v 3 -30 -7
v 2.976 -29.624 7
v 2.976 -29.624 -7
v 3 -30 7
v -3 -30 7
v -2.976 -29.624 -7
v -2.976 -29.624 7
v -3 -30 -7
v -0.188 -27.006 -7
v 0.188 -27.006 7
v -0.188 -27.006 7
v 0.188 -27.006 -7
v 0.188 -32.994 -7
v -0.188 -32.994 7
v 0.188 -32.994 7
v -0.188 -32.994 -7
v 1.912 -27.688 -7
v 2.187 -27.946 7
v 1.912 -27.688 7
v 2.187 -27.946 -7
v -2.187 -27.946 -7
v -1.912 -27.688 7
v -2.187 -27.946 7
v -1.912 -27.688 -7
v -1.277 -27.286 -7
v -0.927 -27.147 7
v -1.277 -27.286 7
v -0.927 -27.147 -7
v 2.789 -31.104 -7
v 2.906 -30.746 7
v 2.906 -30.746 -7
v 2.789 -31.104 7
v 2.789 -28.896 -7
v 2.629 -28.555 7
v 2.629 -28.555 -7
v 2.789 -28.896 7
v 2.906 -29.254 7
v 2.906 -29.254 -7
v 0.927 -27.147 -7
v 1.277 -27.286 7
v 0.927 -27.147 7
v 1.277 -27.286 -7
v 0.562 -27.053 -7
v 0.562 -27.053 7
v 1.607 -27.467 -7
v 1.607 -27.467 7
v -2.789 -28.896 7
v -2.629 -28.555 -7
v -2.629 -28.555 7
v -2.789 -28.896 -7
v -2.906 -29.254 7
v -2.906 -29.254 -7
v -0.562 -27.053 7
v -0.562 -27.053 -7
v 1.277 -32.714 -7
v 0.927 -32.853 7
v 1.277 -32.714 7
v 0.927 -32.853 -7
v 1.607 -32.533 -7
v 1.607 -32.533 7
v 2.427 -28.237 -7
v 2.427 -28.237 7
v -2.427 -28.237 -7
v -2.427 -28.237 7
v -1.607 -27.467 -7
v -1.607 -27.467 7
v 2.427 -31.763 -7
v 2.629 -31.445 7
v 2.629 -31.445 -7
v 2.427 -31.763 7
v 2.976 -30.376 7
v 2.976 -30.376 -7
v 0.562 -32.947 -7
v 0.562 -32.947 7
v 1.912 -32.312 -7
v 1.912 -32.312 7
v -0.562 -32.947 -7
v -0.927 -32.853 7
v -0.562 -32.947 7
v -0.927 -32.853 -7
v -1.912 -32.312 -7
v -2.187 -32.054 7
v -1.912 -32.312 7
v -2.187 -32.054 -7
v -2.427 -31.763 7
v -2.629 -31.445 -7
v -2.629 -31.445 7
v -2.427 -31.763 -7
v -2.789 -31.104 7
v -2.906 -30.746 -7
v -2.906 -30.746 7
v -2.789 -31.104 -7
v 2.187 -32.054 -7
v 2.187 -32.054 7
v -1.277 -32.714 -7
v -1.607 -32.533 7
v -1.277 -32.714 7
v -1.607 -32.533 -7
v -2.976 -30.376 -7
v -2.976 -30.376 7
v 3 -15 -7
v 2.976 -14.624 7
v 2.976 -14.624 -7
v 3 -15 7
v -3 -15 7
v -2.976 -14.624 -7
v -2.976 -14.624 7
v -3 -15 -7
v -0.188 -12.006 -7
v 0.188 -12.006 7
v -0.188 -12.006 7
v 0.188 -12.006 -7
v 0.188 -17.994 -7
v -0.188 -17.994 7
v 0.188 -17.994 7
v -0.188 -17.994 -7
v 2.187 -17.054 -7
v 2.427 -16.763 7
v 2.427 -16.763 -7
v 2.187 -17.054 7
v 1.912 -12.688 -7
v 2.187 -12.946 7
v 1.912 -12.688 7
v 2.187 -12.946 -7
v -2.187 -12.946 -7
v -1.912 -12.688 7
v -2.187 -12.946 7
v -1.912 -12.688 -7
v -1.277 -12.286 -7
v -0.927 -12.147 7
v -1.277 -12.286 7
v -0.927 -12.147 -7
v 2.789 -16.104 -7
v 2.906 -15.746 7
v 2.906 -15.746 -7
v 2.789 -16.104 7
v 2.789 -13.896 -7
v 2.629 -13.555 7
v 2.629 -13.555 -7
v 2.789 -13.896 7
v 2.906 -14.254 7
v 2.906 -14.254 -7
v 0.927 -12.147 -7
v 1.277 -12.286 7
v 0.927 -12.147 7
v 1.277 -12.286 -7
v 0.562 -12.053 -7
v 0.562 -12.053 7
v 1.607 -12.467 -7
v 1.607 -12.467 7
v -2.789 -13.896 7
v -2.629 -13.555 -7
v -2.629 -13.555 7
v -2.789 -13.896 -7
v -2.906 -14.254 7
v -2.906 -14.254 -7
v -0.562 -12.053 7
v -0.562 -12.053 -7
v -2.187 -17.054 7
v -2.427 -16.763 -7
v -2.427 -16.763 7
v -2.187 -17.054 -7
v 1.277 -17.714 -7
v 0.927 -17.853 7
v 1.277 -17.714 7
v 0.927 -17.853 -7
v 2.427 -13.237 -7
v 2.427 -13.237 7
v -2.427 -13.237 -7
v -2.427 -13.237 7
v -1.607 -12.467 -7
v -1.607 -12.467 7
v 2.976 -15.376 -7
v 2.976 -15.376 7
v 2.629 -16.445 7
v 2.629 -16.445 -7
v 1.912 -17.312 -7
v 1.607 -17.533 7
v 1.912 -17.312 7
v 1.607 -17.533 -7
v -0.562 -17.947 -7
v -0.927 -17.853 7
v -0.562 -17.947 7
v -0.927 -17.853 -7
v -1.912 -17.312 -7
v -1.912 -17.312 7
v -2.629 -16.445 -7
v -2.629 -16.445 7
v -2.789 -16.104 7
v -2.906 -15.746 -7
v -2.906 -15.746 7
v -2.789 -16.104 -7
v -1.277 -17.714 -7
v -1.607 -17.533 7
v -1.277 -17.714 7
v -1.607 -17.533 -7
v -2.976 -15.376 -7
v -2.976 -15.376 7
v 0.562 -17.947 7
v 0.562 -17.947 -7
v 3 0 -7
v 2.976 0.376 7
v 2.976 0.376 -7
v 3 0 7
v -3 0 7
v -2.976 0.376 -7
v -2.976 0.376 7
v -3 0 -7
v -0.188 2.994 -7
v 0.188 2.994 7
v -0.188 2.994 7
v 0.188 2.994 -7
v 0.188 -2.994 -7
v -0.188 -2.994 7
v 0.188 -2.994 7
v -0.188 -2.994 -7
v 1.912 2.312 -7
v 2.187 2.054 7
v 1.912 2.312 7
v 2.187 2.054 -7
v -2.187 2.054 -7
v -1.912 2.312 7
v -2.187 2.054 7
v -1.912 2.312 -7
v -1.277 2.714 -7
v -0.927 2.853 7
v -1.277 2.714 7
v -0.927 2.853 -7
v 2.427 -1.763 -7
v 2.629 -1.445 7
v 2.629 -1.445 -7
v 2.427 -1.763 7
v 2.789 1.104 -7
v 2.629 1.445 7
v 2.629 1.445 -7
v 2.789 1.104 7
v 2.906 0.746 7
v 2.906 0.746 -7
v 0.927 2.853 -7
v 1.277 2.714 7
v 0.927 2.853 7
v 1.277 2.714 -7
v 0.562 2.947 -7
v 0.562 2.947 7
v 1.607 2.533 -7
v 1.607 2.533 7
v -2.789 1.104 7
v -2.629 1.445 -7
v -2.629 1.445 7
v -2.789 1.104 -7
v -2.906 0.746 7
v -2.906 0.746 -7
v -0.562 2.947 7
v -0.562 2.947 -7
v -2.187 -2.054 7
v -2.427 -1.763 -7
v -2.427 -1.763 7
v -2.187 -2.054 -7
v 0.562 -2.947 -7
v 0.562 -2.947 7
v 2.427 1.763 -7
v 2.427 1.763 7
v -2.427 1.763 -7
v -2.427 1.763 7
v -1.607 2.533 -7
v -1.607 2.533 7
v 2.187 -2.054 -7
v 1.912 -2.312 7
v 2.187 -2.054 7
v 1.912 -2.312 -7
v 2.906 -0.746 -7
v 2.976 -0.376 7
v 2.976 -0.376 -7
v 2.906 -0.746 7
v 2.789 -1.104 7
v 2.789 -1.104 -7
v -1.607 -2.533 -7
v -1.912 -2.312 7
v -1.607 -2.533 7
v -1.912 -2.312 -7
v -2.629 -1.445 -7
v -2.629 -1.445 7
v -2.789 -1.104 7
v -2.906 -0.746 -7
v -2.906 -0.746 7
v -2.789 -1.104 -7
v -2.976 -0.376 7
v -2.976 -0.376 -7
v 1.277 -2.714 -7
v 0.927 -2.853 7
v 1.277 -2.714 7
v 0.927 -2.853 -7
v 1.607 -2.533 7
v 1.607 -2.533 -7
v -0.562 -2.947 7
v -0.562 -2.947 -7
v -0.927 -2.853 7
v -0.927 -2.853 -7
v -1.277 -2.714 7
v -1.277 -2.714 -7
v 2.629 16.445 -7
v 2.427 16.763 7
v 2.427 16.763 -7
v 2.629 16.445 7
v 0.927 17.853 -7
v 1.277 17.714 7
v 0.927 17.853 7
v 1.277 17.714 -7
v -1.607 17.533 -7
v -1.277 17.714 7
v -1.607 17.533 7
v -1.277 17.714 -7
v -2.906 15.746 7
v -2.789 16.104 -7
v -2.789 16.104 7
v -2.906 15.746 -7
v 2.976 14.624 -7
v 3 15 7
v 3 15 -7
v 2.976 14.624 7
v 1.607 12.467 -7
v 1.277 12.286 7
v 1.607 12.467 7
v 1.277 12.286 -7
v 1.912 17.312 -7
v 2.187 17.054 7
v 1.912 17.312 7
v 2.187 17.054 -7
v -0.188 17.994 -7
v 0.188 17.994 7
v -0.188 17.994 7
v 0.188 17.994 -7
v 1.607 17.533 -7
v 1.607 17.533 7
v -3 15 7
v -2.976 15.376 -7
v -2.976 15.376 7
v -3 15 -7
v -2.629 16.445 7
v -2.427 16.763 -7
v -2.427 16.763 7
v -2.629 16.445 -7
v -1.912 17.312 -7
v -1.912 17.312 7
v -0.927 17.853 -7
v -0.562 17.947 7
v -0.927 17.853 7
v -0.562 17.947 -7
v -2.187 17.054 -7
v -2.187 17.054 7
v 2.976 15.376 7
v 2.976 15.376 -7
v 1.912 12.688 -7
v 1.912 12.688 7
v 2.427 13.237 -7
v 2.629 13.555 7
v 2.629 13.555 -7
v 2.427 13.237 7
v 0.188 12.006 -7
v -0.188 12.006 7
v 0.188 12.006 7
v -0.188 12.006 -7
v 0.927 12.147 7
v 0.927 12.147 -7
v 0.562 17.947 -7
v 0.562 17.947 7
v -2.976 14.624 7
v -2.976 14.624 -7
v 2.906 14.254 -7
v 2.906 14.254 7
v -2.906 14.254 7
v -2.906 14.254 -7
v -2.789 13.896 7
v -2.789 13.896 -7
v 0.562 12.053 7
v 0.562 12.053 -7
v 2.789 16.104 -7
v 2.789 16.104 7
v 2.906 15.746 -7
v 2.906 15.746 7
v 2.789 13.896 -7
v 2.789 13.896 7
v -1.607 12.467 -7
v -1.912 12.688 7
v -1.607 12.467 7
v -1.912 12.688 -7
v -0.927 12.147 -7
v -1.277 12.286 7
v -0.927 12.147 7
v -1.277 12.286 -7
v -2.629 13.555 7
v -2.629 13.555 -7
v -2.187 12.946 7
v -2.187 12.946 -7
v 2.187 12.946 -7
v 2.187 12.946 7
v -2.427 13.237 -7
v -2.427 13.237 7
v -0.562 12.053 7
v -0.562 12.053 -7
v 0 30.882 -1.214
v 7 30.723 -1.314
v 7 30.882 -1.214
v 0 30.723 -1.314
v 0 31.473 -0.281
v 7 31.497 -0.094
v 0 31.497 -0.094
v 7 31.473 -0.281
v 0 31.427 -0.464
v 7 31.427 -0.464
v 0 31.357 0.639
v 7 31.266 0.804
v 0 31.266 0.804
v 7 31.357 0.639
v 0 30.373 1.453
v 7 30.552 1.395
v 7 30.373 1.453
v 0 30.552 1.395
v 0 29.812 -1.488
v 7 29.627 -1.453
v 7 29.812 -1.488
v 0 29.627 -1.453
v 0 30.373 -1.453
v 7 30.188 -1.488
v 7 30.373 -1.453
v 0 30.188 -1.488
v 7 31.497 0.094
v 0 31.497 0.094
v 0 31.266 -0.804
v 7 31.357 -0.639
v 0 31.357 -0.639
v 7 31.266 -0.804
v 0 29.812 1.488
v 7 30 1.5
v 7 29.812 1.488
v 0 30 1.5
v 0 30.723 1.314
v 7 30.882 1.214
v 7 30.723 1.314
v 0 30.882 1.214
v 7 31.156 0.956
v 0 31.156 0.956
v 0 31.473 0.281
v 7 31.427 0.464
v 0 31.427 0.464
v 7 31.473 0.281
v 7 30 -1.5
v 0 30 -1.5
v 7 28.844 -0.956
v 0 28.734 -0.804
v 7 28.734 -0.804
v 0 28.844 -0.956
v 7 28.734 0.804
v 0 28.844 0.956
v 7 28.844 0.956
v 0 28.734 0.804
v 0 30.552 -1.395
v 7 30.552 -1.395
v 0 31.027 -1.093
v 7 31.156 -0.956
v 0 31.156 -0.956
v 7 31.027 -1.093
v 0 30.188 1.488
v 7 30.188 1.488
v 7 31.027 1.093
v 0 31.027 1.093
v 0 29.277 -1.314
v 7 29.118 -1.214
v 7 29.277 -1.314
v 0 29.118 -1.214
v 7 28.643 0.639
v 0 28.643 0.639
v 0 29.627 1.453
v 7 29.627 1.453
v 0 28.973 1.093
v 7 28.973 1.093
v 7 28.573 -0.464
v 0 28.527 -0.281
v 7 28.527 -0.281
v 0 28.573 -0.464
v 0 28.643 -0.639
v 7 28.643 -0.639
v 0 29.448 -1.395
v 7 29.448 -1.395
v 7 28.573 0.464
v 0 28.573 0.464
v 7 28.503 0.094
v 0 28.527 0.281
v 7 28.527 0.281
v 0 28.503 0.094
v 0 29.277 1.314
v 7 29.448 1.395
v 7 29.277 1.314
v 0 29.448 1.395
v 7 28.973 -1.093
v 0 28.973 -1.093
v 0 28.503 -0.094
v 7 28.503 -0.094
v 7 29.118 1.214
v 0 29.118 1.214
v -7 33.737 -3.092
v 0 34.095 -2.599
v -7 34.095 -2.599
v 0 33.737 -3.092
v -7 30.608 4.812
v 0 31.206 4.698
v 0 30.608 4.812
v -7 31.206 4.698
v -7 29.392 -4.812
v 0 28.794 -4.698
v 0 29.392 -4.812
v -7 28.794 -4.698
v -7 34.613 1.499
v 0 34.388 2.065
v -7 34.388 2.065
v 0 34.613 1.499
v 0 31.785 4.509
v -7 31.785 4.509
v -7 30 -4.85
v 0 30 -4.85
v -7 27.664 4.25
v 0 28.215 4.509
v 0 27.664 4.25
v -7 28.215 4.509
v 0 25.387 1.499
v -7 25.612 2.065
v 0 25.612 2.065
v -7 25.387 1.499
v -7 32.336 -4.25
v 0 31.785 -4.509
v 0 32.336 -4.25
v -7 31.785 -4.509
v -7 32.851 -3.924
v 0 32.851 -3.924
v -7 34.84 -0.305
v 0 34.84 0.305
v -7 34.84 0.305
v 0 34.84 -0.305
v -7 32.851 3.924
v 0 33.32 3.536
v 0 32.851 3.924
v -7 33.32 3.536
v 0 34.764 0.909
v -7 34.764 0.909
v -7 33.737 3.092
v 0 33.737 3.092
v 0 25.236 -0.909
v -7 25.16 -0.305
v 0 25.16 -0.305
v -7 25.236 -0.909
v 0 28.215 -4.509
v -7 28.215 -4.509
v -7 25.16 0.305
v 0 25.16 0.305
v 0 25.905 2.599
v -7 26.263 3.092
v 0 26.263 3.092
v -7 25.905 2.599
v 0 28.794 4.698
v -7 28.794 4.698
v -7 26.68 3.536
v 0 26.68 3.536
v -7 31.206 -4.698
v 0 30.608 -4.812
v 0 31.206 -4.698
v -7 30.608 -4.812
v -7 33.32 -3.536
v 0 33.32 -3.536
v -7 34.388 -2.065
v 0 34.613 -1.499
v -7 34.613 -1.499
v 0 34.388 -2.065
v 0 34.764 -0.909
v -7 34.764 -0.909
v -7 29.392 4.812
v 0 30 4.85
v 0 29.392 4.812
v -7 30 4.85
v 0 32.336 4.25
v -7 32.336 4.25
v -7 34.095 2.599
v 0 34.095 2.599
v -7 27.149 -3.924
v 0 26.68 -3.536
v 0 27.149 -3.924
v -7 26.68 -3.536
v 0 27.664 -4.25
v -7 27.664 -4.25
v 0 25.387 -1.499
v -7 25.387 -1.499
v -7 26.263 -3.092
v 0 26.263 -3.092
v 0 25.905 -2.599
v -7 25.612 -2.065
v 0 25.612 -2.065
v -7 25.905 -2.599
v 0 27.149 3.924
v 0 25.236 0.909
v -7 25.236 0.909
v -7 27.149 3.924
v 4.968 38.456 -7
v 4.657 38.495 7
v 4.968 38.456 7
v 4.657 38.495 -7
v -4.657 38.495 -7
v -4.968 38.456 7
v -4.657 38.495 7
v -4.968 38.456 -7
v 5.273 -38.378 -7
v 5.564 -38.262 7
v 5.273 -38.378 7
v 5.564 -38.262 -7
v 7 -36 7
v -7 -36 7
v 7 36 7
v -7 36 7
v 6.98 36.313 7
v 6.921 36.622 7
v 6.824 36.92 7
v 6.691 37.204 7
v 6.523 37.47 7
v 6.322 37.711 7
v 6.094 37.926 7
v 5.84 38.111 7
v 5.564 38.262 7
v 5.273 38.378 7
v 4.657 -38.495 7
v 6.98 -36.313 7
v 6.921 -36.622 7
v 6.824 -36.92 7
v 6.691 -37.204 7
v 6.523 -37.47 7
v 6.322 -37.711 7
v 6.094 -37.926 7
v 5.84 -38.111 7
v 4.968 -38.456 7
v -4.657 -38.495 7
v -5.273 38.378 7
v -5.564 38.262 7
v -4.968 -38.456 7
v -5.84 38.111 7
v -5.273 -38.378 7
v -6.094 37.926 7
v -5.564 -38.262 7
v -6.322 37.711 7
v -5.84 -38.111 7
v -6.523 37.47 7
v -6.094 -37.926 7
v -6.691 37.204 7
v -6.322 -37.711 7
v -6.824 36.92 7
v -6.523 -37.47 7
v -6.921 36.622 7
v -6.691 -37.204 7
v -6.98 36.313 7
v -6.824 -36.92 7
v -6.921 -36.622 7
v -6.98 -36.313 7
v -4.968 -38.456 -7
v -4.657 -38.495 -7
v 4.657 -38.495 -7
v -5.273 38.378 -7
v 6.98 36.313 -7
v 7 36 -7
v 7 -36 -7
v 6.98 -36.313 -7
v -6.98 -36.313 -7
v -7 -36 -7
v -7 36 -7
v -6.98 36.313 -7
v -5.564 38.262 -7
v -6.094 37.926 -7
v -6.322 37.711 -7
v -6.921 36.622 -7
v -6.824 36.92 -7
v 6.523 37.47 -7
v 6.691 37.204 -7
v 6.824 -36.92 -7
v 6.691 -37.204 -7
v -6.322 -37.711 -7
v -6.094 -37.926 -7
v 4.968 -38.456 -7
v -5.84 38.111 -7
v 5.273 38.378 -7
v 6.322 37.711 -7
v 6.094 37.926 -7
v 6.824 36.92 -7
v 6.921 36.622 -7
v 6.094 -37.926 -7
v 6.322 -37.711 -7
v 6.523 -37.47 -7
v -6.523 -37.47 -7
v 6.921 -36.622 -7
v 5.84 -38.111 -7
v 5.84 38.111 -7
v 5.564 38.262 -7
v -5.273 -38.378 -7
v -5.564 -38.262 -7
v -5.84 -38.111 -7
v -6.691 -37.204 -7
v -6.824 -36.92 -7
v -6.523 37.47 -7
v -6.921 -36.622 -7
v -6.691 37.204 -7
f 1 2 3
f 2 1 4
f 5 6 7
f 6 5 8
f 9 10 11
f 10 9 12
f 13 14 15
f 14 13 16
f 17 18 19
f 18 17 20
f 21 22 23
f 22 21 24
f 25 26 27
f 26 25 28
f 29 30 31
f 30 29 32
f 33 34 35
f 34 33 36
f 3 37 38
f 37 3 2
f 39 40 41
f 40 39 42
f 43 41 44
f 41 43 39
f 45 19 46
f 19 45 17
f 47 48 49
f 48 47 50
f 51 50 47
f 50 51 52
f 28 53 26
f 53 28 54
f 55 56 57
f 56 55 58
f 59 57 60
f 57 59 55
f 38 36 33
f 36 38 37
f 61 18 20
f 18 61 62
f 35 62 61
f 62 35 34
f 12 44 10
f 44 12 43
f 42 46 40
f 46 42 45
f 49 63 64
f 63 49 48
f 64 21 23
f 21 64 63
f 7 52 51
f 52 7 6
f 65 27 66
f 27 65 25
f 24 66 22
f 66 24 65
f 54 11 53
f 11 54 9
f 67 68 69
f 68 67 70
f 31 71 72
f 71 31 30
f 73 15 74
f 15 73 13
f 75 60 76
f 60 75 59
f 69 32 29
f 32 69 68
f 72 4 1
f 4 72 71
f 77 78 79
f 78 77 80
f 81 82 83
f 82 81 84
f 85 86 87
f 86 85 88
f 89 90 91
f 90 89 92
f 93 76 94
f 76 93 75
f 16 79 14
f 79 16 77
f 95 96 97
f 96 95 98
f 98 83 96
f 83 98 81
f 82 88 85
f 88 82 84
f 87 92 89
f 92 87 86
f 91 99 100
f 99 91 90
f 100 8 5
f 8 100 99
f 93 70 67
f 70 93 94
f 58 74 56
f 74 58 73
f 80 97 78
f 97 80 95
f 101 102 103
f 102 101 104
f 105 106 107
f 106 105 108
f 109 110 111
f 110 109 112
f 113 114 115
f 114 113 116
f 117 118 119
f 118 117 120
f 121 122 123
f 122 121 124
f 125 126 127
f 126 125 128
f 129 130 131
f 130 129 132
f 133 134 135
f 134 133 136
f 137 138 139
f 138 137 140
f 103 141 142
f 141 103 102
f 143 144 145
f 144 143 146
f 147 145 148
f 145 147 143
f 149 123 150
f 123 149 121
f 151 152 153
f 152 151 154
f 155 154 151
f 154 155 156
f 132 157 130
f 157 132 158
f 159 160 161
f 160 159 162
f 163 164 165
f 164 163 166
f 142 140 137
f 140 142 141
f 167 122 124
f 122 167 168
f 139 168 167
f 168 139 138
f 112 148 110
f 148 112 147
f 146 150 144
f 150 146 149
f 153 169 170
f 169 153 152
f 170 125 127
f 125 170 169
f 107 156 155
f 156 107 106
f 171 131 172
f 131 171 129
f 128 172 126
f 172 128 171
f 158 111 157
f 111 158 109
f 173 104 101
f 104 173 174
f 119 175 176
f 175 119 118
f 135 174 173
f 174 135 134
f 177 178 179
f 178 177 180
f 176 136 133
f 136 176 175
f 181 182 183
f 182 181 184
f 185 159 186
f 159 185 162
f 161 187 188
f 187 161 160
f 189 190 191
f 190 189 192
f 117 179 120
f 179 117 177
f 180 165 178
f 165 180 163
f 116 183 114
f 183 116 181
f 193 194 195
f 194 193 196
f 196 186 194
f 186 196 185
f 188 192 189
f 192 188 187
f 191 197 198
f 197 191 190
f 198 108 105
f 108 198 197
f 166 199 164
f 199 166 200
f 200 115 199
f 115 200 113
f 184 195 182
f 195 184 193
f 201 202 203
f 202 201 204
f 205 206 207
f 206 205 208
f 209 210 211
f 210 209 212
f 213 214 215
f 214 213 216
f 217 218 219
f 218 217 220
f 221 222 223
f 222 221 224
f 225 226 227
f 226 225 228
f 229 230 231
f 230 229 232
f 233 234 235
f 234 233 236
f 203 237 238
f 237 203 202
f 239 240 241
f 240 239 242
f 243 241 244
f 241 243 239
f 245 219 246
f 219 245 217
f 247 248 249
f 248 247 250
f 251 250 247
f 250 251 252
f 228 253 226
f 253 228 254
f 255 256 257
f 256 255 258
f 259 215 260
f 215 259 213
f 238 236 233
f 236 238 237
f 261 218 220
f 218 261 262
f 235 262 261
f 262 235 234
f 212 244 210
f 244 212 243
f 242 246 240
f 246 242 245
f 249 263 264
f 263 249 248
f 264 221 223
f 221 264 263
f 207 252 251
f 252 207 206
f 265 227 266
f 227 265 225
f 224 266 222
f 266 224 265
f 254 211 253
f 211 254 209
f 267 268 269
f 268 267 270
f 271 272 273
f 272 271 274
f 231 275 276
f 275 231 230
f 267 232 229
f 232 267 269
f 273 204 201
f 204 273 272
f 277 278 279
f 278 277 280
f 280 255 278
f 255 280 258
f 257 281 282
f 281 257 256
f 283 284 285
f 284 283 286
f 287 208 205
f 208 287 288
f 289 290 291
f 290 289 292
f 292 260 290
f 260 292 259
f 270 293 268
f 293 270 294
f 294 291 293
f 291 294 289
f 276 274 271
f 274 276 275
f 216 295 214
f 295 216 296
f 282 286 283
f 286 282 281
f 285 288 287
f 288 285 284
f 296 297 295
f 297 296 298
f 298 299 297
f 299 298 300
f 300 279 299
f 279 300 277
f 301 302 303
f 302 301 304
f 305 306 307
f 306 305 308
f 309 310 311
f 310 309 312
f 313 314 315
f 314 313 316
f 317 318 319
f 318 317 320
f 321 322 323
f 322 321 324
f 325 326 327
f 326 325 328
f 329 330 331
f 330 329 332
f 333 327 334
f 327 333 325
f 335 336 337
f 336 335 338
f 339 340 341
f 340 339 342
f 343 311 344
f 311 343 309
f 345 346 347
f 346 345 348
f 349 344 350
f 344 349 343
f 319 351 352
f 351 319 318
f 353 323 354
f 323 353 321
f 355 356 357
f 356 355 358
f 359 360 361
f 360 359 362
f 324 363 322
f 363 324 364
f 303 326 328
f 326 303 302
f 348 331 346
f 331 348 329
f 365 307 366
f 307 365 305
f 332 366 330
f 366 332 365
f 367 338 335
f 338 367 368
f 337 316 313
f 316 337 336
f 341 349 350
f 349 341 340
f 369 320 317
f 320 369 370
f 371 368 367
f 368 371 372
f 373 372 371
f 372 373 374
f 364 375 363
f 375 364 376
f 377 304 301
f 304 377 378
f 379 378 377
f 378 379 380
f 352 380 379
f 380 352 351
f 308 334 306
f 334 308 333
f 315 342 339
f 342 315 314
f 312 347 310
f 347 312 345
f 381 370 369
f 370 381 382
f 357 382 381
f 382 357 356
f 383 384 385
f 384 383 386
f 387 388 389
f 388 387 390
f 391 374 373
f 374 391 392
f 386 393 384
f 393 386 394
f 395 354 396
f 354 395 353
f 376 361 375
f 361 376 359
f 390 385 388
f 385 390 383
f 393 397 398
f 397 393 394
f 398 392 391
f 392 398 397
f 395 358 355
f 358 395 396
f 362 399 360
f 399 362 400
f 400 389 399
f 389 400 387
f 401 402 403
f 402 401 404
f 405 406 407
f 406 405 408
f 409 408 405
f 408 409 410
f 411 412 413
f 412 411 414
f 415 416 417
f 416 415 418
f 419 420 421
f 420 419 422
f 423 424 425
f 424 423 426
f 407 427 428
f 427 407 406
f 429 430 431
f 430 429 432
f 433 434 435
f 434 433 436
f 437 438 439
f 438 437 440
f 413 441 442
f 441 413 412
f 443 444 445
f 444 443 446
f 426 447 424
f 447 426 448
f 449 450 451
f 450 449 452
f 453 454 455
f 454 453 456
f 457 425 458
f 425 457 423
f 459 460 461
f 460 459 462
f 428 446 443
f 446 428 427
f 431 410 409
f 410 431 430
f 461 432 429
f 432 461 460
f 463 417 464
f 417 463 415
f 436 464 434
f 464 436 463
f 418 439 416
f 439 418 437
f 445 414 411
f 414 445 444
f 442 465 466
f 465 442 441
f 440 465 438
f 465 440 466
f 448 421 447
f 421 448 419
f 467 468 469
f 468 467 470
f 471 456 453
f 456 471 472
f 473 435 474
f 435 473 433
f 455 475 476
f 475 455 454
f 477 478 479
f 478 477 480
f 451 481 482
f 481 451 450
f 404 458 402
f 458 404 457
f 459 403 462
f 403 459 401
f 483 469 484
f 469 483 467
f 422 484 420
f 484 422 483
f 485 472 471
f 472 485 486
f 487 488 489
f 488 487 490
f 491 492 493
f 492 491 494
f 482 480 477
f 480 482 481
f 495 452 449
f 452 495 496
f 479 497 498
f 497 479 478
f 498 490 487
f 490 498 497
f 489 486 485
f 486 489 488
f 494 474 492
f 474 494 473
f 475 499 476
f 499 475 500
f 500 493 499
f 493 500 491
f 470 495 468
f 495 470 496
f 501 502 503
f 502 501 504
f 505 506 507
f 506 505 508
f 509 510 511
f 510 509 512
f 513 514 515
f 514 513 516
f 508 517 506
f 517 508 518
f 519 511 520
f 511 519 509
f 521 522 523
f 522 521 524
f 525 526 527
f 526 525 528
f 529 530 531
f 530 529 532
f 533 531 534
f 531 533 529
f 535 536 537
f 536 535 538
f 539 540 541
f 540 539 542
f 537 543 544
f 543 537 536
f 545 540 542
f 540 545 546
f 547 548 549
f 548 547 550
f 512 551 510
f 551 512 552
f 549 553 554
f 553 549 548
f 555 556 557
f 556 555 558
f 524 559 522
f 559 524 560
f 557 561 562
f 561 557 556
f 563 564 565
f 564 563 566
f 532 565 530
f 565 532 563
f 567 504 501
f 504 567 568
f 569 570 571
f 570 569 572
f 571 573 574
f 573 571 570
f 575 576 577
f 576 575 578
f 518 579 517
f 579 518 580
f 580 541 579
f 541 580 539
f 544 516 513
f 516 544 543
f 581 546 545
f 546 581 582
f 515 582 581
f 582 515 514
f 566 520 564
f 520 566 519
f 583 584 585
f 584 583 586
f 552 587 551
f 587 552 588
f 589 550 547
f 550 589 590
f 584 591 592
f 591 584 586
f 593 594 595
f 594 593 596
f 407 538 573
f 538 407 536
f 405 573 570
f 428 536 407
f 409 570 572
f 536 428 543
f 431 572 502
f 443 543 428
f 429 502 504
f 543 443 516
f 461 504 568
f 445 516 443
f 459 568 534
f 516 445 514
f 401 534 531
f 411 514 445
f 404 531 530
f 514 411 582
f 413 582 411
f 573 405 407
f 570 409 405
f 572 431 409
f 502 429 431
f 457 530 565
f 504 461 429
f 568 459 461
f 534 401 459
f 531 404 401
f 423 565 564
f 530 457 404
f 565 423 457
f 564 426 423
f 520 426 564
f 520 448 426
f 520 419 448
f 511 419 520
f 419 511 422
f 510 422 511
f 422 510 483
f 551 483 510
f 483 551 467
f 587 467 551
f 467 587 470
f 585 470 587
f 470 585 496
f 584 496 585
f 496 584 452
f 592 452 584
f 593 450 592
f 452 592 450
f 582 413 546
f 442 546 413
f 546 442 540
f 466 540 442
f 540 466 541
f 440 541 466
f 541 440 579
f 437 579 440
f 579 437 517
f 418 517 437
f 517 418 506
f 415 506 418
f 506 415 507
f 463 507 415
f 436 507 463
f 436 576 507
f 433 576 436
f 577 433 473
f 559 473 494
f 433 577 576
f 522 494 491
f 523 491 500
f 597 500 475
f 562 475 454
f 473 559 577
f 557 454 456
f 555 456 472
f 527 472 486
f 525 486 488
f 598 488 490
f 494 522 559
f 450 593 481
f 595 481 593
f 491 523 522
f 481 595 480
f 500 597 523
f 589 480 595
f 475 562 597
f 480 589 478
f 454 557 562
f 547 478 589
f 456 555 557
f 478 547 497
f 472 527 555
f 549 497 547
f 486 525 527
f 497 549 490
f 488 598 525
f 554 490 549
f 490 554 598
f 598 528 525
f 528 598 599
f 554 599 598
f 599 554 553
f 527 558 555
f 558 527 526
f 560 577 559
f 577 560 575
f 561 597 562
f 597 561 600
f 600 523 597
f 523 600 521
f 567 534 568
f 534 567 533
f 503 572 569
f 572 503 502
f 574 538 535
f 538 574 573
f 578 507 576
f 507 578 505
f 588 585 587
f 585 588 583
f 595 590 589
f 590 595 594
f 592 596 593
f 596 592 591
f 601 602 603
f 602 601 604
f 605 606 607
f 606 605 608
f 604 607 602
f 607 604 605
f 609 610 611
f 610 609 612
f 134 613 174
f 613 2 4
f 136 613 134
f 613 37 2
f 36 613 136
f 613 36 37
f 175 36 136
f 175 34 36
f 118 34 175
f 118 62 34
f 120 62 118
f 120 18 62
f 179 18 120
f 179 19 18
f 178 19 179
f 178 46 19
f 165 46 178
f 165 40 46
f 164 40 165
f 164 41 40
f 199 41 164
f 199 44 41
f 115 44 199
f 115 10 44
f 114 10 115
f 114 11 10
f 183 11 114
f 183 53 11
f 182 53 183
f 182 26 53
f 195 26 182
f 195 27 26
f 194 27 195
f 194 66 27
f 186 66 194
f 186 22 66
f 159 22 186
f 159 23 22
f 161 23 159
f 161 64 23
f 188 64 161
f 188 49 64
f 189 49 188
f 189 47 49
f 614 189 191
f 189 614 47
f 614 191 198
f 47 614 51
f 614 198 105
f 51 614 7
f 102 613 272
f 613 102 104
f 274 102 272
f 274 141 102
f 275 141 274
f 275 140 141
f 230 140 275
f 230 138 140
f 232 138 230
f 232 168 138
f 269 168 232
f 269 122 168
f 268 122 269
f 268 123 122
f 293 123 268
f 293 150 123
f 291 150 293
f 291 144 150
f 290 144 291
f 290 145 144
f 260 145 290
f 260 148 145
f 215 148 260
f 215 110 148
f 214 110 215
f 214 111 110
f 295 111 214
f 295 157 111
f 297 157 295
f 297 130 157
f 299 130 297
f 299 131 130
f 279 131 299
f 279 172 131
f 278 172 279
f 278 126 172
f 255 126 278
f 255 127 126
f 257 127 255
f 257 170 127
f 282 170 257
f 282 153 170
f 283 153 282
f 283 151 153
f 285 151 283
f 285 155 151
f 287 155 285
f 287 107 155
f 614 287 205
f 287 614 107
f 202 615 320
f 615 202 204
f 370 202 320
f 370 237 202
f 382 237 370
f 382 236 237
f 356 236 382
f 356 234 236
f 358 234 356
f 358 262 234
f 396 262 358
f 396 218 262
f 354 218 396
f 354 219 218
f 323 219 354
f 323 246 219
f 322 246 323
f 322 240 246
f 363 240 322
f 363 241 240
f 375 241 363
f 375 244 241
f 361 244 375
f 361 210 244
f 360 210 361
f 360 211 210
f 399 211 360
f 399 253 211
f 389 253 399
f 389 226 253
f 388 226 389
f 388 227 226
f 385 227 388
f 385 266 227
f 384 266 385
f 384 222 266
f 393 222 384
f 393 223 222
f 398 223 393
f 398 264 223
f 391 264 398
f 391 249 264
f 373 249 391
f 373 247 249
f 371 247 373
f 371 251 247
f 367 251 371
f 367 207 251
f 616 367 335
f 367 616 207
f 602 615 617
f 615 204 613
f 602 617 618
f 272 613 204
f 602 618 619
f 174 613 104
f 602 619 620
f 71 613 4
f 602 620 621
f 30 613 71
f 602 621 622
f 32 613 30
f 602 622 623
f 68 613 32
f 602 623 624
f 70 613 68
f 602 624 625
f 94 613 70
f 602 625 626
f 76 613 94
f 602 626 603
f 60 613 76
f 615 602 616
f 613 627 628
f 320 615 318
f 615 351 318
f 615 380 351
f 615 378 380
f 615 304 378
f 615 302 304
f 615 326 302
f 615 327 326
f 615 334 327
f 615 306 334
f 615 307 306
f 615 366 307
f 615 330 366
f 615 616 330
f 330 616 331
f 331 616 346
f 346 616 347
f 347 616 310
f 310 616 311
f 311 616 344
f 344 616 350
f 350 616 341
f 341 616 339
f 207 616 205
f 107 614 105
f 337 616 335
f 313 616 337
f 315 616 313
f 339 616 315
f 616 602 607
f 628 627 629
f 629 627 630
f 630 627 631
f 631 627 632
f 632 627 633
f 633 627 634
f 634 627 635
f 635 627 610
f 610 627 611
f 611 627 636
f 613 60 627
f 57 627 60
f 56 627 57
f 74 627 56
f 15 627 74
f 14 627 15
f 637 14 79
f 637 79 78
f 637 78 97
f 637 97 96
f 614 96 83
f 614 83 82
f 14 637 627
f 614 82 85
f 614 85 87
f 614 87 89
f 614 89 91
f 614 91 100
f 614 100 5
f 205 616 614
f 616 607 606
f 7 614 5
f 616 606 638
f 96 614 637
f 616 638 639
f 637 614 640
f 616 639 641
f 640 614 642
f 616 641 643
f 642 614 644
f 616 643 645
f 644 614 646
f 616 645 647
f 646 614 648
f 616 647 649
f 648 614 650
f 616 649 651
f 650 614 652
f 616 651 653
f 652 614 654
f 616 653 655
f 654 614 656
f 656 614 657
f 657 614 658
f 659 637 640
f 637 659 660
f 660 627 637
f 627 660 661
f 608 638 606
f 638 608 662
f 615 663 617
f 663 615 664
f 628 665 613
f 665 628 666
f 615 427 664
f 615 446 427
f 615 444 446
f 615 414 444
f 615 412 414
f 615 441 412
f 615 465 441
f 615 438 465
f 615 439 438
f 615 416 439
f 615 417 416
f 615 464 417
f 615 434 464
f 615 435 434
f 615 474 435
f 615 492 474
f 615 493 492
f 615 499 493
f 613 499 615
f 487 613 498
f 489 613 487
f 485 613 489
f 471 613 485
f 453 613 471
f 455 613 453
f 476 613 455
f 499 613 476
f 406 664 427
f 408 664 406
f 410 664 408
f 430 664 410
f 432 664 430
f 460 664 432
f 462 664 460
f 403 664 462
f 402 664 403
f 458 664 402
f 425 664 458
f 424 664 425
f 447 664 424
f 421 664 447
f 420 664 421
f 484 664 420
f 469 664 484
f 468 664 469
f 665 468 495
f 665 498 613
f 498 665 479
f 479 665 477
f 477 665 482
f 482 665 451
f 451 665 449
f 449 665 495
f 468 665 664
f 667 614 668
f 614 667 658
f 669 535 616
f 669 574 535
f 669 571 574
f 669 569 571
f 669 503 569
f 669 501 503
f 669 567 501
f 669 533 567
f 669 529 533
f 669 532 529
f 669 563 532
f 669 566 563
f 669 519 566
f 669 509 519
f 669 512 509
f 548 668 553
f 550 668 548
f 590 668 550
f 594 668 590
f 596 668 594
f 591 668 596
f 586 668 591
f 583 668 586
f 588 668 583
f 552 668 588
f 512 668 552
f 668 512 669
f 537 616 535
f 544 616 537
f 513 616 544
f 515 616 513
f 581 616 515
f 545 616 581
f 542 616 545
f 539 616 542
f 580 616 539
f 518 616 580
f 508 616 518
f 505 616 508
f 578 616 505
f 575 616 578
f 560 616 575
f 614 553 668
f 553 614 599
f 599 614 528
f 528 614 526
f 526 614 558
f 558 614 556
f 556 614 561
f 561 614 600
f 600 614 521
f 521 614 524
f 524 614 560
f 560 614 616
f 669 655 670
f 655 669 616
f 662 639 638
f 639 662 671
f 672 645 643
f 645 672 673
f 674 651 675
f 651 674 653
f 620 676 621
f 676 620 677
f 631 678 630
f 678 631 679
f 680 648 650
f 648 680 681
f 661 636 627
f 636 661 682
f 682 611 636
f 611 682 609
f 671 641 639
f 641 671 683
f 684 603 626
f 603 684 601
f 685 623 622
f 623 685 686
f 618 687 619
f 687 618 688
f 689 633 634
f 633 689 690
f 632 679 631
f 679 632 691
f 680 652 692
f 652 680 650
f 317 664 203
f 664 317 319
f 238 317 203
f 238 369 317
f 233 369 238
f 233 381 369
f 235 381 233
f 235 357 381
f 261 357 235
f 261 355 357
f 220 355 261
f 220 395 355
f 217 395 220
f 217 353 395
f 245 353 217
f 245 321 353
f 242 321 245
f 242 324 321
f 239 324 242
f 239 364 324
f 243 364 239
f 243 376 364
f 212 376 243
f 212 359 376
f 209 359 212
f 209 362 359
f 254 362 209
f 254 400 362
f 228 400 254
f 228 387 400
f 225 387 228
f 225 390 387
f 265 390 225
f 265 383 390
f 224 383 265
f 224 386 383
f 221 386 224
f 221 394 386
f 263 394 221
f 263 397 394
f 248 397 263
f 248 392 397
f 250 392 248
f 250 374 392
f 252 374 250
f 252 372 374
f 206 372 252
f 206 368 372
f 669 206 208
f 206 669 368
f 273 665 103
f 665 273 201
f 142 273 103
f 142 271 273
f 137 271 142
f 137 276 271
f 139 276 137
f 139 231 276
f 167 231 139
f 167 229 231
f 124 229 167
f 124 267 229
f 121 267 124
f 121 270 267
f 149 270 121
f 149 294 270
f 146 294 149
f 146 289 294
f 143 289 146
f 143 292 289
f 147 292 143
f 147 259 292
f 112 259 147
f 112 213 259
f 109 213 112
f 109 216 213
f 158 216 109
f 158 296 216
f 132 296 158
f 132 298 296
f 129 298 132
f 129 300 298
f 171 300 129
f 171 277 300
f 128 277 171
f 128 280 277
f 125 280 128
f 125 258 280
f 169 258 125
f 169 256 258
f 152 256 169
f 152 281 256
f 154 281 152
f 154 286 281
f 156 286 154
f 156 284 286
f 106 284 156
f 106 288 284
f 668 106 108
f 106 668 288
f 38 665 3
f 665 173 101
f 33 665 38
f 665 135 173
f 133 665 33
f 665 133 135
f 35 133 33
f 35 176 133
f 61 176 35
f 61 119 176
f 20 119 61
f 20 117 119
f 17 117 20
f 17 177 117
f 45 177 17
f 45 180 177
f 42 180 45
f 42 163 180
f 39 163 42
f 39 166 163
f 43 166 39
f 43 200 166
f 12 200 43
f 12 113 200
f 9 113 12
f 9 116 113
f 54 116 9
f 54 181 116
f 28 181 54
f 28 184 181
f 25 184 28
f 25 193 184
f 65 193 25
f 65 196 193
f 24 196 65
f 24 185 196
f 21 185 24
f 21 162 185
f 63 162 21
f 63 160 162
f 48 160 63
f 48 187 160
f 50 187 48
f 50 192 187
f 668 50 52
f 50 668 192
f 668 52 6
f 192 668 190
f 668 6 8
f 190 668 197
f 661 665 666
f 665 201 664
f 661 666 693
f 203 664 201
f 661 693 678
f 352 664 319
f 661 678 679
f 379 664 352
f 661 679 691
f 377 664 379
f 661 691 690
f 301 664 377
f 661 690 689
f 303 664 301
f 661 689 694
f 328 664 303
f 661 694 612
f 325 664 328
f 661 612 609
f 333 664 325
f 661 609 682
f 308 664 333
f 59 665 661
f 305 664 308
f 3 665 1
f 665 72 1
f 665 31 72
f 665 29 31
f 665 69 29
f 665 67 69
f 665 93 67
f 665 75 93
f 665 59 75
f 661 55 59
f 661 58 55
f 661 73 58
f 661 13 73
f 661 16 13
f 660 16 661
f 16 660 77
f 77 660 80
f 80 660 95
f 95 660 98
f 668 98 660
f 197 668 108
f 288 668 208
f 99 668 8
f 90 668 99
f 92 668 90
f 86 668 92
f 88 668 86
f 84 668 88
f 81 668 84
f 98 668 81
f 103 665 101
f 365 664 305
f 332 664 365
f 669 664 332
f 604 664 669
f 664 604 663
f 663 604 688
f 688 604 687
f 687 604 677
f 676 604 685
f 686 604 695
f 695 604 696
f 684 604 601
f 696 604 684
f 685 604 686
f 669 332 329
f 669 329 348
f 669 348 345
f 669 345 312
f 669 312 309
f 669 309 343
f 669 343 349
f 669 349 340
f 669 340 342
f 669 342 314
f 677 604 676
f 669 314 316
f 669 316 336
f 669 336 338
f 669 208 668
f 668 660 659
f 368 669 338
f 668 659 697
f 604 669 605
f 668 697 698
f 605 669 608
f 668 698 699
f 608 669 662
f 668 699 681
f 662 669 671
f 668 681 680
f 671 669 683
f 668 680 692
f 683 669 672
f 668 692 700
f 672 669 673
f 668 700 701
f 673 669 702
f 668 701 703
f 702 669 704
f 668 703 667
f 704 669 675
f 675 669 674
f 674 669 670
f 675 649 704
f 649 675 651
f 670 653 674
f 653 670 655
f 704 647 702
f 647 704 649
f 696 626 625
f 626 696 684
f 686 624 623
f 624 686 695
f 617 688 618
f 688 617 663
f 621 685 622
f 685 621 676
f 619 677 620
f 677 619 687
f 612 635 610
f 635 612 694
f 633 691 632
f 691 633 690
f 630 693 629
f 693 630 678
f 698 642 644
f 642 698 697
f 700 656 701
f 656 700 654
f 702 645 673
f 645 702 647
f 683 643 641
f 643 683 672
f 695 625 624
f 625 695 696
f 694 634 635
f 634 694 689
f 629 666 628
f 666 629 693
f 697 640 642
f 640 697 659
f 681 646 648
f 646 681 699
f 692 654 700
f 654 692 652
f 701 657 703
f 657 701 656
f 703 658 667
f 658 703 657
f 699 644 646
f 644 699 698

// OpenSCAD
$fn = 50;


difference() {
	union() {
		translate(v = [0, 0, -7.0000000000]) {
			hull() {
				translate(v = [-4.5000000000, 36.0000000000, 0]) {
					cylinder(h = 14, r = 2.5000000000);
				}
				translate(v = [4.5000000000, 36.0000000000, 0]) {
					cylinder(h = 14, r = 2.5000000000);
				}
				translate(v = [-4.5000000000, -36.0000000000, 0]) {
					cylinder(h = 14, r = 2.5000000000);
				}
				translate(v = [4.5000000000, -36.0000000000, 0]) {
					cylinder(h = 14, r = 2.5000000000);
				}
			}
		}
	}
	union() {
		translate(v = [0.0000000000, -30.0000000000, -100.0000000000]) {
			cylinder(h = 200, r = 3.0000000000);
		}
		translate(v = [0.0000000000, -15.0000000000, -100.0000000000]) {
			cylinder(h = 200, r = 3.0000000000);
		}
		translate(v = [0.0000000000, 0.0000000000, -100.0000000000]) {
			cylinder(h = 200, r = 3.0000000000);
		}
		translate(v = [0.0000000000, 15.0000000000, -100.0000000000]) {
			cylinder(h = 200, r = 3.0000000000);
		}
		translate(v = [-50, 30, 0]) {
			rotate(a = [0, 90, 0]) {
				cylinder(h = 100, r = 1.5000000000);
			}
		}
		translate(v = [-100, 30, 0]) {
			rotate(a = [0, 90, 0]) {
				cylinder(h = 100, r = 4.8500000000);
			}
		}
	}
}
